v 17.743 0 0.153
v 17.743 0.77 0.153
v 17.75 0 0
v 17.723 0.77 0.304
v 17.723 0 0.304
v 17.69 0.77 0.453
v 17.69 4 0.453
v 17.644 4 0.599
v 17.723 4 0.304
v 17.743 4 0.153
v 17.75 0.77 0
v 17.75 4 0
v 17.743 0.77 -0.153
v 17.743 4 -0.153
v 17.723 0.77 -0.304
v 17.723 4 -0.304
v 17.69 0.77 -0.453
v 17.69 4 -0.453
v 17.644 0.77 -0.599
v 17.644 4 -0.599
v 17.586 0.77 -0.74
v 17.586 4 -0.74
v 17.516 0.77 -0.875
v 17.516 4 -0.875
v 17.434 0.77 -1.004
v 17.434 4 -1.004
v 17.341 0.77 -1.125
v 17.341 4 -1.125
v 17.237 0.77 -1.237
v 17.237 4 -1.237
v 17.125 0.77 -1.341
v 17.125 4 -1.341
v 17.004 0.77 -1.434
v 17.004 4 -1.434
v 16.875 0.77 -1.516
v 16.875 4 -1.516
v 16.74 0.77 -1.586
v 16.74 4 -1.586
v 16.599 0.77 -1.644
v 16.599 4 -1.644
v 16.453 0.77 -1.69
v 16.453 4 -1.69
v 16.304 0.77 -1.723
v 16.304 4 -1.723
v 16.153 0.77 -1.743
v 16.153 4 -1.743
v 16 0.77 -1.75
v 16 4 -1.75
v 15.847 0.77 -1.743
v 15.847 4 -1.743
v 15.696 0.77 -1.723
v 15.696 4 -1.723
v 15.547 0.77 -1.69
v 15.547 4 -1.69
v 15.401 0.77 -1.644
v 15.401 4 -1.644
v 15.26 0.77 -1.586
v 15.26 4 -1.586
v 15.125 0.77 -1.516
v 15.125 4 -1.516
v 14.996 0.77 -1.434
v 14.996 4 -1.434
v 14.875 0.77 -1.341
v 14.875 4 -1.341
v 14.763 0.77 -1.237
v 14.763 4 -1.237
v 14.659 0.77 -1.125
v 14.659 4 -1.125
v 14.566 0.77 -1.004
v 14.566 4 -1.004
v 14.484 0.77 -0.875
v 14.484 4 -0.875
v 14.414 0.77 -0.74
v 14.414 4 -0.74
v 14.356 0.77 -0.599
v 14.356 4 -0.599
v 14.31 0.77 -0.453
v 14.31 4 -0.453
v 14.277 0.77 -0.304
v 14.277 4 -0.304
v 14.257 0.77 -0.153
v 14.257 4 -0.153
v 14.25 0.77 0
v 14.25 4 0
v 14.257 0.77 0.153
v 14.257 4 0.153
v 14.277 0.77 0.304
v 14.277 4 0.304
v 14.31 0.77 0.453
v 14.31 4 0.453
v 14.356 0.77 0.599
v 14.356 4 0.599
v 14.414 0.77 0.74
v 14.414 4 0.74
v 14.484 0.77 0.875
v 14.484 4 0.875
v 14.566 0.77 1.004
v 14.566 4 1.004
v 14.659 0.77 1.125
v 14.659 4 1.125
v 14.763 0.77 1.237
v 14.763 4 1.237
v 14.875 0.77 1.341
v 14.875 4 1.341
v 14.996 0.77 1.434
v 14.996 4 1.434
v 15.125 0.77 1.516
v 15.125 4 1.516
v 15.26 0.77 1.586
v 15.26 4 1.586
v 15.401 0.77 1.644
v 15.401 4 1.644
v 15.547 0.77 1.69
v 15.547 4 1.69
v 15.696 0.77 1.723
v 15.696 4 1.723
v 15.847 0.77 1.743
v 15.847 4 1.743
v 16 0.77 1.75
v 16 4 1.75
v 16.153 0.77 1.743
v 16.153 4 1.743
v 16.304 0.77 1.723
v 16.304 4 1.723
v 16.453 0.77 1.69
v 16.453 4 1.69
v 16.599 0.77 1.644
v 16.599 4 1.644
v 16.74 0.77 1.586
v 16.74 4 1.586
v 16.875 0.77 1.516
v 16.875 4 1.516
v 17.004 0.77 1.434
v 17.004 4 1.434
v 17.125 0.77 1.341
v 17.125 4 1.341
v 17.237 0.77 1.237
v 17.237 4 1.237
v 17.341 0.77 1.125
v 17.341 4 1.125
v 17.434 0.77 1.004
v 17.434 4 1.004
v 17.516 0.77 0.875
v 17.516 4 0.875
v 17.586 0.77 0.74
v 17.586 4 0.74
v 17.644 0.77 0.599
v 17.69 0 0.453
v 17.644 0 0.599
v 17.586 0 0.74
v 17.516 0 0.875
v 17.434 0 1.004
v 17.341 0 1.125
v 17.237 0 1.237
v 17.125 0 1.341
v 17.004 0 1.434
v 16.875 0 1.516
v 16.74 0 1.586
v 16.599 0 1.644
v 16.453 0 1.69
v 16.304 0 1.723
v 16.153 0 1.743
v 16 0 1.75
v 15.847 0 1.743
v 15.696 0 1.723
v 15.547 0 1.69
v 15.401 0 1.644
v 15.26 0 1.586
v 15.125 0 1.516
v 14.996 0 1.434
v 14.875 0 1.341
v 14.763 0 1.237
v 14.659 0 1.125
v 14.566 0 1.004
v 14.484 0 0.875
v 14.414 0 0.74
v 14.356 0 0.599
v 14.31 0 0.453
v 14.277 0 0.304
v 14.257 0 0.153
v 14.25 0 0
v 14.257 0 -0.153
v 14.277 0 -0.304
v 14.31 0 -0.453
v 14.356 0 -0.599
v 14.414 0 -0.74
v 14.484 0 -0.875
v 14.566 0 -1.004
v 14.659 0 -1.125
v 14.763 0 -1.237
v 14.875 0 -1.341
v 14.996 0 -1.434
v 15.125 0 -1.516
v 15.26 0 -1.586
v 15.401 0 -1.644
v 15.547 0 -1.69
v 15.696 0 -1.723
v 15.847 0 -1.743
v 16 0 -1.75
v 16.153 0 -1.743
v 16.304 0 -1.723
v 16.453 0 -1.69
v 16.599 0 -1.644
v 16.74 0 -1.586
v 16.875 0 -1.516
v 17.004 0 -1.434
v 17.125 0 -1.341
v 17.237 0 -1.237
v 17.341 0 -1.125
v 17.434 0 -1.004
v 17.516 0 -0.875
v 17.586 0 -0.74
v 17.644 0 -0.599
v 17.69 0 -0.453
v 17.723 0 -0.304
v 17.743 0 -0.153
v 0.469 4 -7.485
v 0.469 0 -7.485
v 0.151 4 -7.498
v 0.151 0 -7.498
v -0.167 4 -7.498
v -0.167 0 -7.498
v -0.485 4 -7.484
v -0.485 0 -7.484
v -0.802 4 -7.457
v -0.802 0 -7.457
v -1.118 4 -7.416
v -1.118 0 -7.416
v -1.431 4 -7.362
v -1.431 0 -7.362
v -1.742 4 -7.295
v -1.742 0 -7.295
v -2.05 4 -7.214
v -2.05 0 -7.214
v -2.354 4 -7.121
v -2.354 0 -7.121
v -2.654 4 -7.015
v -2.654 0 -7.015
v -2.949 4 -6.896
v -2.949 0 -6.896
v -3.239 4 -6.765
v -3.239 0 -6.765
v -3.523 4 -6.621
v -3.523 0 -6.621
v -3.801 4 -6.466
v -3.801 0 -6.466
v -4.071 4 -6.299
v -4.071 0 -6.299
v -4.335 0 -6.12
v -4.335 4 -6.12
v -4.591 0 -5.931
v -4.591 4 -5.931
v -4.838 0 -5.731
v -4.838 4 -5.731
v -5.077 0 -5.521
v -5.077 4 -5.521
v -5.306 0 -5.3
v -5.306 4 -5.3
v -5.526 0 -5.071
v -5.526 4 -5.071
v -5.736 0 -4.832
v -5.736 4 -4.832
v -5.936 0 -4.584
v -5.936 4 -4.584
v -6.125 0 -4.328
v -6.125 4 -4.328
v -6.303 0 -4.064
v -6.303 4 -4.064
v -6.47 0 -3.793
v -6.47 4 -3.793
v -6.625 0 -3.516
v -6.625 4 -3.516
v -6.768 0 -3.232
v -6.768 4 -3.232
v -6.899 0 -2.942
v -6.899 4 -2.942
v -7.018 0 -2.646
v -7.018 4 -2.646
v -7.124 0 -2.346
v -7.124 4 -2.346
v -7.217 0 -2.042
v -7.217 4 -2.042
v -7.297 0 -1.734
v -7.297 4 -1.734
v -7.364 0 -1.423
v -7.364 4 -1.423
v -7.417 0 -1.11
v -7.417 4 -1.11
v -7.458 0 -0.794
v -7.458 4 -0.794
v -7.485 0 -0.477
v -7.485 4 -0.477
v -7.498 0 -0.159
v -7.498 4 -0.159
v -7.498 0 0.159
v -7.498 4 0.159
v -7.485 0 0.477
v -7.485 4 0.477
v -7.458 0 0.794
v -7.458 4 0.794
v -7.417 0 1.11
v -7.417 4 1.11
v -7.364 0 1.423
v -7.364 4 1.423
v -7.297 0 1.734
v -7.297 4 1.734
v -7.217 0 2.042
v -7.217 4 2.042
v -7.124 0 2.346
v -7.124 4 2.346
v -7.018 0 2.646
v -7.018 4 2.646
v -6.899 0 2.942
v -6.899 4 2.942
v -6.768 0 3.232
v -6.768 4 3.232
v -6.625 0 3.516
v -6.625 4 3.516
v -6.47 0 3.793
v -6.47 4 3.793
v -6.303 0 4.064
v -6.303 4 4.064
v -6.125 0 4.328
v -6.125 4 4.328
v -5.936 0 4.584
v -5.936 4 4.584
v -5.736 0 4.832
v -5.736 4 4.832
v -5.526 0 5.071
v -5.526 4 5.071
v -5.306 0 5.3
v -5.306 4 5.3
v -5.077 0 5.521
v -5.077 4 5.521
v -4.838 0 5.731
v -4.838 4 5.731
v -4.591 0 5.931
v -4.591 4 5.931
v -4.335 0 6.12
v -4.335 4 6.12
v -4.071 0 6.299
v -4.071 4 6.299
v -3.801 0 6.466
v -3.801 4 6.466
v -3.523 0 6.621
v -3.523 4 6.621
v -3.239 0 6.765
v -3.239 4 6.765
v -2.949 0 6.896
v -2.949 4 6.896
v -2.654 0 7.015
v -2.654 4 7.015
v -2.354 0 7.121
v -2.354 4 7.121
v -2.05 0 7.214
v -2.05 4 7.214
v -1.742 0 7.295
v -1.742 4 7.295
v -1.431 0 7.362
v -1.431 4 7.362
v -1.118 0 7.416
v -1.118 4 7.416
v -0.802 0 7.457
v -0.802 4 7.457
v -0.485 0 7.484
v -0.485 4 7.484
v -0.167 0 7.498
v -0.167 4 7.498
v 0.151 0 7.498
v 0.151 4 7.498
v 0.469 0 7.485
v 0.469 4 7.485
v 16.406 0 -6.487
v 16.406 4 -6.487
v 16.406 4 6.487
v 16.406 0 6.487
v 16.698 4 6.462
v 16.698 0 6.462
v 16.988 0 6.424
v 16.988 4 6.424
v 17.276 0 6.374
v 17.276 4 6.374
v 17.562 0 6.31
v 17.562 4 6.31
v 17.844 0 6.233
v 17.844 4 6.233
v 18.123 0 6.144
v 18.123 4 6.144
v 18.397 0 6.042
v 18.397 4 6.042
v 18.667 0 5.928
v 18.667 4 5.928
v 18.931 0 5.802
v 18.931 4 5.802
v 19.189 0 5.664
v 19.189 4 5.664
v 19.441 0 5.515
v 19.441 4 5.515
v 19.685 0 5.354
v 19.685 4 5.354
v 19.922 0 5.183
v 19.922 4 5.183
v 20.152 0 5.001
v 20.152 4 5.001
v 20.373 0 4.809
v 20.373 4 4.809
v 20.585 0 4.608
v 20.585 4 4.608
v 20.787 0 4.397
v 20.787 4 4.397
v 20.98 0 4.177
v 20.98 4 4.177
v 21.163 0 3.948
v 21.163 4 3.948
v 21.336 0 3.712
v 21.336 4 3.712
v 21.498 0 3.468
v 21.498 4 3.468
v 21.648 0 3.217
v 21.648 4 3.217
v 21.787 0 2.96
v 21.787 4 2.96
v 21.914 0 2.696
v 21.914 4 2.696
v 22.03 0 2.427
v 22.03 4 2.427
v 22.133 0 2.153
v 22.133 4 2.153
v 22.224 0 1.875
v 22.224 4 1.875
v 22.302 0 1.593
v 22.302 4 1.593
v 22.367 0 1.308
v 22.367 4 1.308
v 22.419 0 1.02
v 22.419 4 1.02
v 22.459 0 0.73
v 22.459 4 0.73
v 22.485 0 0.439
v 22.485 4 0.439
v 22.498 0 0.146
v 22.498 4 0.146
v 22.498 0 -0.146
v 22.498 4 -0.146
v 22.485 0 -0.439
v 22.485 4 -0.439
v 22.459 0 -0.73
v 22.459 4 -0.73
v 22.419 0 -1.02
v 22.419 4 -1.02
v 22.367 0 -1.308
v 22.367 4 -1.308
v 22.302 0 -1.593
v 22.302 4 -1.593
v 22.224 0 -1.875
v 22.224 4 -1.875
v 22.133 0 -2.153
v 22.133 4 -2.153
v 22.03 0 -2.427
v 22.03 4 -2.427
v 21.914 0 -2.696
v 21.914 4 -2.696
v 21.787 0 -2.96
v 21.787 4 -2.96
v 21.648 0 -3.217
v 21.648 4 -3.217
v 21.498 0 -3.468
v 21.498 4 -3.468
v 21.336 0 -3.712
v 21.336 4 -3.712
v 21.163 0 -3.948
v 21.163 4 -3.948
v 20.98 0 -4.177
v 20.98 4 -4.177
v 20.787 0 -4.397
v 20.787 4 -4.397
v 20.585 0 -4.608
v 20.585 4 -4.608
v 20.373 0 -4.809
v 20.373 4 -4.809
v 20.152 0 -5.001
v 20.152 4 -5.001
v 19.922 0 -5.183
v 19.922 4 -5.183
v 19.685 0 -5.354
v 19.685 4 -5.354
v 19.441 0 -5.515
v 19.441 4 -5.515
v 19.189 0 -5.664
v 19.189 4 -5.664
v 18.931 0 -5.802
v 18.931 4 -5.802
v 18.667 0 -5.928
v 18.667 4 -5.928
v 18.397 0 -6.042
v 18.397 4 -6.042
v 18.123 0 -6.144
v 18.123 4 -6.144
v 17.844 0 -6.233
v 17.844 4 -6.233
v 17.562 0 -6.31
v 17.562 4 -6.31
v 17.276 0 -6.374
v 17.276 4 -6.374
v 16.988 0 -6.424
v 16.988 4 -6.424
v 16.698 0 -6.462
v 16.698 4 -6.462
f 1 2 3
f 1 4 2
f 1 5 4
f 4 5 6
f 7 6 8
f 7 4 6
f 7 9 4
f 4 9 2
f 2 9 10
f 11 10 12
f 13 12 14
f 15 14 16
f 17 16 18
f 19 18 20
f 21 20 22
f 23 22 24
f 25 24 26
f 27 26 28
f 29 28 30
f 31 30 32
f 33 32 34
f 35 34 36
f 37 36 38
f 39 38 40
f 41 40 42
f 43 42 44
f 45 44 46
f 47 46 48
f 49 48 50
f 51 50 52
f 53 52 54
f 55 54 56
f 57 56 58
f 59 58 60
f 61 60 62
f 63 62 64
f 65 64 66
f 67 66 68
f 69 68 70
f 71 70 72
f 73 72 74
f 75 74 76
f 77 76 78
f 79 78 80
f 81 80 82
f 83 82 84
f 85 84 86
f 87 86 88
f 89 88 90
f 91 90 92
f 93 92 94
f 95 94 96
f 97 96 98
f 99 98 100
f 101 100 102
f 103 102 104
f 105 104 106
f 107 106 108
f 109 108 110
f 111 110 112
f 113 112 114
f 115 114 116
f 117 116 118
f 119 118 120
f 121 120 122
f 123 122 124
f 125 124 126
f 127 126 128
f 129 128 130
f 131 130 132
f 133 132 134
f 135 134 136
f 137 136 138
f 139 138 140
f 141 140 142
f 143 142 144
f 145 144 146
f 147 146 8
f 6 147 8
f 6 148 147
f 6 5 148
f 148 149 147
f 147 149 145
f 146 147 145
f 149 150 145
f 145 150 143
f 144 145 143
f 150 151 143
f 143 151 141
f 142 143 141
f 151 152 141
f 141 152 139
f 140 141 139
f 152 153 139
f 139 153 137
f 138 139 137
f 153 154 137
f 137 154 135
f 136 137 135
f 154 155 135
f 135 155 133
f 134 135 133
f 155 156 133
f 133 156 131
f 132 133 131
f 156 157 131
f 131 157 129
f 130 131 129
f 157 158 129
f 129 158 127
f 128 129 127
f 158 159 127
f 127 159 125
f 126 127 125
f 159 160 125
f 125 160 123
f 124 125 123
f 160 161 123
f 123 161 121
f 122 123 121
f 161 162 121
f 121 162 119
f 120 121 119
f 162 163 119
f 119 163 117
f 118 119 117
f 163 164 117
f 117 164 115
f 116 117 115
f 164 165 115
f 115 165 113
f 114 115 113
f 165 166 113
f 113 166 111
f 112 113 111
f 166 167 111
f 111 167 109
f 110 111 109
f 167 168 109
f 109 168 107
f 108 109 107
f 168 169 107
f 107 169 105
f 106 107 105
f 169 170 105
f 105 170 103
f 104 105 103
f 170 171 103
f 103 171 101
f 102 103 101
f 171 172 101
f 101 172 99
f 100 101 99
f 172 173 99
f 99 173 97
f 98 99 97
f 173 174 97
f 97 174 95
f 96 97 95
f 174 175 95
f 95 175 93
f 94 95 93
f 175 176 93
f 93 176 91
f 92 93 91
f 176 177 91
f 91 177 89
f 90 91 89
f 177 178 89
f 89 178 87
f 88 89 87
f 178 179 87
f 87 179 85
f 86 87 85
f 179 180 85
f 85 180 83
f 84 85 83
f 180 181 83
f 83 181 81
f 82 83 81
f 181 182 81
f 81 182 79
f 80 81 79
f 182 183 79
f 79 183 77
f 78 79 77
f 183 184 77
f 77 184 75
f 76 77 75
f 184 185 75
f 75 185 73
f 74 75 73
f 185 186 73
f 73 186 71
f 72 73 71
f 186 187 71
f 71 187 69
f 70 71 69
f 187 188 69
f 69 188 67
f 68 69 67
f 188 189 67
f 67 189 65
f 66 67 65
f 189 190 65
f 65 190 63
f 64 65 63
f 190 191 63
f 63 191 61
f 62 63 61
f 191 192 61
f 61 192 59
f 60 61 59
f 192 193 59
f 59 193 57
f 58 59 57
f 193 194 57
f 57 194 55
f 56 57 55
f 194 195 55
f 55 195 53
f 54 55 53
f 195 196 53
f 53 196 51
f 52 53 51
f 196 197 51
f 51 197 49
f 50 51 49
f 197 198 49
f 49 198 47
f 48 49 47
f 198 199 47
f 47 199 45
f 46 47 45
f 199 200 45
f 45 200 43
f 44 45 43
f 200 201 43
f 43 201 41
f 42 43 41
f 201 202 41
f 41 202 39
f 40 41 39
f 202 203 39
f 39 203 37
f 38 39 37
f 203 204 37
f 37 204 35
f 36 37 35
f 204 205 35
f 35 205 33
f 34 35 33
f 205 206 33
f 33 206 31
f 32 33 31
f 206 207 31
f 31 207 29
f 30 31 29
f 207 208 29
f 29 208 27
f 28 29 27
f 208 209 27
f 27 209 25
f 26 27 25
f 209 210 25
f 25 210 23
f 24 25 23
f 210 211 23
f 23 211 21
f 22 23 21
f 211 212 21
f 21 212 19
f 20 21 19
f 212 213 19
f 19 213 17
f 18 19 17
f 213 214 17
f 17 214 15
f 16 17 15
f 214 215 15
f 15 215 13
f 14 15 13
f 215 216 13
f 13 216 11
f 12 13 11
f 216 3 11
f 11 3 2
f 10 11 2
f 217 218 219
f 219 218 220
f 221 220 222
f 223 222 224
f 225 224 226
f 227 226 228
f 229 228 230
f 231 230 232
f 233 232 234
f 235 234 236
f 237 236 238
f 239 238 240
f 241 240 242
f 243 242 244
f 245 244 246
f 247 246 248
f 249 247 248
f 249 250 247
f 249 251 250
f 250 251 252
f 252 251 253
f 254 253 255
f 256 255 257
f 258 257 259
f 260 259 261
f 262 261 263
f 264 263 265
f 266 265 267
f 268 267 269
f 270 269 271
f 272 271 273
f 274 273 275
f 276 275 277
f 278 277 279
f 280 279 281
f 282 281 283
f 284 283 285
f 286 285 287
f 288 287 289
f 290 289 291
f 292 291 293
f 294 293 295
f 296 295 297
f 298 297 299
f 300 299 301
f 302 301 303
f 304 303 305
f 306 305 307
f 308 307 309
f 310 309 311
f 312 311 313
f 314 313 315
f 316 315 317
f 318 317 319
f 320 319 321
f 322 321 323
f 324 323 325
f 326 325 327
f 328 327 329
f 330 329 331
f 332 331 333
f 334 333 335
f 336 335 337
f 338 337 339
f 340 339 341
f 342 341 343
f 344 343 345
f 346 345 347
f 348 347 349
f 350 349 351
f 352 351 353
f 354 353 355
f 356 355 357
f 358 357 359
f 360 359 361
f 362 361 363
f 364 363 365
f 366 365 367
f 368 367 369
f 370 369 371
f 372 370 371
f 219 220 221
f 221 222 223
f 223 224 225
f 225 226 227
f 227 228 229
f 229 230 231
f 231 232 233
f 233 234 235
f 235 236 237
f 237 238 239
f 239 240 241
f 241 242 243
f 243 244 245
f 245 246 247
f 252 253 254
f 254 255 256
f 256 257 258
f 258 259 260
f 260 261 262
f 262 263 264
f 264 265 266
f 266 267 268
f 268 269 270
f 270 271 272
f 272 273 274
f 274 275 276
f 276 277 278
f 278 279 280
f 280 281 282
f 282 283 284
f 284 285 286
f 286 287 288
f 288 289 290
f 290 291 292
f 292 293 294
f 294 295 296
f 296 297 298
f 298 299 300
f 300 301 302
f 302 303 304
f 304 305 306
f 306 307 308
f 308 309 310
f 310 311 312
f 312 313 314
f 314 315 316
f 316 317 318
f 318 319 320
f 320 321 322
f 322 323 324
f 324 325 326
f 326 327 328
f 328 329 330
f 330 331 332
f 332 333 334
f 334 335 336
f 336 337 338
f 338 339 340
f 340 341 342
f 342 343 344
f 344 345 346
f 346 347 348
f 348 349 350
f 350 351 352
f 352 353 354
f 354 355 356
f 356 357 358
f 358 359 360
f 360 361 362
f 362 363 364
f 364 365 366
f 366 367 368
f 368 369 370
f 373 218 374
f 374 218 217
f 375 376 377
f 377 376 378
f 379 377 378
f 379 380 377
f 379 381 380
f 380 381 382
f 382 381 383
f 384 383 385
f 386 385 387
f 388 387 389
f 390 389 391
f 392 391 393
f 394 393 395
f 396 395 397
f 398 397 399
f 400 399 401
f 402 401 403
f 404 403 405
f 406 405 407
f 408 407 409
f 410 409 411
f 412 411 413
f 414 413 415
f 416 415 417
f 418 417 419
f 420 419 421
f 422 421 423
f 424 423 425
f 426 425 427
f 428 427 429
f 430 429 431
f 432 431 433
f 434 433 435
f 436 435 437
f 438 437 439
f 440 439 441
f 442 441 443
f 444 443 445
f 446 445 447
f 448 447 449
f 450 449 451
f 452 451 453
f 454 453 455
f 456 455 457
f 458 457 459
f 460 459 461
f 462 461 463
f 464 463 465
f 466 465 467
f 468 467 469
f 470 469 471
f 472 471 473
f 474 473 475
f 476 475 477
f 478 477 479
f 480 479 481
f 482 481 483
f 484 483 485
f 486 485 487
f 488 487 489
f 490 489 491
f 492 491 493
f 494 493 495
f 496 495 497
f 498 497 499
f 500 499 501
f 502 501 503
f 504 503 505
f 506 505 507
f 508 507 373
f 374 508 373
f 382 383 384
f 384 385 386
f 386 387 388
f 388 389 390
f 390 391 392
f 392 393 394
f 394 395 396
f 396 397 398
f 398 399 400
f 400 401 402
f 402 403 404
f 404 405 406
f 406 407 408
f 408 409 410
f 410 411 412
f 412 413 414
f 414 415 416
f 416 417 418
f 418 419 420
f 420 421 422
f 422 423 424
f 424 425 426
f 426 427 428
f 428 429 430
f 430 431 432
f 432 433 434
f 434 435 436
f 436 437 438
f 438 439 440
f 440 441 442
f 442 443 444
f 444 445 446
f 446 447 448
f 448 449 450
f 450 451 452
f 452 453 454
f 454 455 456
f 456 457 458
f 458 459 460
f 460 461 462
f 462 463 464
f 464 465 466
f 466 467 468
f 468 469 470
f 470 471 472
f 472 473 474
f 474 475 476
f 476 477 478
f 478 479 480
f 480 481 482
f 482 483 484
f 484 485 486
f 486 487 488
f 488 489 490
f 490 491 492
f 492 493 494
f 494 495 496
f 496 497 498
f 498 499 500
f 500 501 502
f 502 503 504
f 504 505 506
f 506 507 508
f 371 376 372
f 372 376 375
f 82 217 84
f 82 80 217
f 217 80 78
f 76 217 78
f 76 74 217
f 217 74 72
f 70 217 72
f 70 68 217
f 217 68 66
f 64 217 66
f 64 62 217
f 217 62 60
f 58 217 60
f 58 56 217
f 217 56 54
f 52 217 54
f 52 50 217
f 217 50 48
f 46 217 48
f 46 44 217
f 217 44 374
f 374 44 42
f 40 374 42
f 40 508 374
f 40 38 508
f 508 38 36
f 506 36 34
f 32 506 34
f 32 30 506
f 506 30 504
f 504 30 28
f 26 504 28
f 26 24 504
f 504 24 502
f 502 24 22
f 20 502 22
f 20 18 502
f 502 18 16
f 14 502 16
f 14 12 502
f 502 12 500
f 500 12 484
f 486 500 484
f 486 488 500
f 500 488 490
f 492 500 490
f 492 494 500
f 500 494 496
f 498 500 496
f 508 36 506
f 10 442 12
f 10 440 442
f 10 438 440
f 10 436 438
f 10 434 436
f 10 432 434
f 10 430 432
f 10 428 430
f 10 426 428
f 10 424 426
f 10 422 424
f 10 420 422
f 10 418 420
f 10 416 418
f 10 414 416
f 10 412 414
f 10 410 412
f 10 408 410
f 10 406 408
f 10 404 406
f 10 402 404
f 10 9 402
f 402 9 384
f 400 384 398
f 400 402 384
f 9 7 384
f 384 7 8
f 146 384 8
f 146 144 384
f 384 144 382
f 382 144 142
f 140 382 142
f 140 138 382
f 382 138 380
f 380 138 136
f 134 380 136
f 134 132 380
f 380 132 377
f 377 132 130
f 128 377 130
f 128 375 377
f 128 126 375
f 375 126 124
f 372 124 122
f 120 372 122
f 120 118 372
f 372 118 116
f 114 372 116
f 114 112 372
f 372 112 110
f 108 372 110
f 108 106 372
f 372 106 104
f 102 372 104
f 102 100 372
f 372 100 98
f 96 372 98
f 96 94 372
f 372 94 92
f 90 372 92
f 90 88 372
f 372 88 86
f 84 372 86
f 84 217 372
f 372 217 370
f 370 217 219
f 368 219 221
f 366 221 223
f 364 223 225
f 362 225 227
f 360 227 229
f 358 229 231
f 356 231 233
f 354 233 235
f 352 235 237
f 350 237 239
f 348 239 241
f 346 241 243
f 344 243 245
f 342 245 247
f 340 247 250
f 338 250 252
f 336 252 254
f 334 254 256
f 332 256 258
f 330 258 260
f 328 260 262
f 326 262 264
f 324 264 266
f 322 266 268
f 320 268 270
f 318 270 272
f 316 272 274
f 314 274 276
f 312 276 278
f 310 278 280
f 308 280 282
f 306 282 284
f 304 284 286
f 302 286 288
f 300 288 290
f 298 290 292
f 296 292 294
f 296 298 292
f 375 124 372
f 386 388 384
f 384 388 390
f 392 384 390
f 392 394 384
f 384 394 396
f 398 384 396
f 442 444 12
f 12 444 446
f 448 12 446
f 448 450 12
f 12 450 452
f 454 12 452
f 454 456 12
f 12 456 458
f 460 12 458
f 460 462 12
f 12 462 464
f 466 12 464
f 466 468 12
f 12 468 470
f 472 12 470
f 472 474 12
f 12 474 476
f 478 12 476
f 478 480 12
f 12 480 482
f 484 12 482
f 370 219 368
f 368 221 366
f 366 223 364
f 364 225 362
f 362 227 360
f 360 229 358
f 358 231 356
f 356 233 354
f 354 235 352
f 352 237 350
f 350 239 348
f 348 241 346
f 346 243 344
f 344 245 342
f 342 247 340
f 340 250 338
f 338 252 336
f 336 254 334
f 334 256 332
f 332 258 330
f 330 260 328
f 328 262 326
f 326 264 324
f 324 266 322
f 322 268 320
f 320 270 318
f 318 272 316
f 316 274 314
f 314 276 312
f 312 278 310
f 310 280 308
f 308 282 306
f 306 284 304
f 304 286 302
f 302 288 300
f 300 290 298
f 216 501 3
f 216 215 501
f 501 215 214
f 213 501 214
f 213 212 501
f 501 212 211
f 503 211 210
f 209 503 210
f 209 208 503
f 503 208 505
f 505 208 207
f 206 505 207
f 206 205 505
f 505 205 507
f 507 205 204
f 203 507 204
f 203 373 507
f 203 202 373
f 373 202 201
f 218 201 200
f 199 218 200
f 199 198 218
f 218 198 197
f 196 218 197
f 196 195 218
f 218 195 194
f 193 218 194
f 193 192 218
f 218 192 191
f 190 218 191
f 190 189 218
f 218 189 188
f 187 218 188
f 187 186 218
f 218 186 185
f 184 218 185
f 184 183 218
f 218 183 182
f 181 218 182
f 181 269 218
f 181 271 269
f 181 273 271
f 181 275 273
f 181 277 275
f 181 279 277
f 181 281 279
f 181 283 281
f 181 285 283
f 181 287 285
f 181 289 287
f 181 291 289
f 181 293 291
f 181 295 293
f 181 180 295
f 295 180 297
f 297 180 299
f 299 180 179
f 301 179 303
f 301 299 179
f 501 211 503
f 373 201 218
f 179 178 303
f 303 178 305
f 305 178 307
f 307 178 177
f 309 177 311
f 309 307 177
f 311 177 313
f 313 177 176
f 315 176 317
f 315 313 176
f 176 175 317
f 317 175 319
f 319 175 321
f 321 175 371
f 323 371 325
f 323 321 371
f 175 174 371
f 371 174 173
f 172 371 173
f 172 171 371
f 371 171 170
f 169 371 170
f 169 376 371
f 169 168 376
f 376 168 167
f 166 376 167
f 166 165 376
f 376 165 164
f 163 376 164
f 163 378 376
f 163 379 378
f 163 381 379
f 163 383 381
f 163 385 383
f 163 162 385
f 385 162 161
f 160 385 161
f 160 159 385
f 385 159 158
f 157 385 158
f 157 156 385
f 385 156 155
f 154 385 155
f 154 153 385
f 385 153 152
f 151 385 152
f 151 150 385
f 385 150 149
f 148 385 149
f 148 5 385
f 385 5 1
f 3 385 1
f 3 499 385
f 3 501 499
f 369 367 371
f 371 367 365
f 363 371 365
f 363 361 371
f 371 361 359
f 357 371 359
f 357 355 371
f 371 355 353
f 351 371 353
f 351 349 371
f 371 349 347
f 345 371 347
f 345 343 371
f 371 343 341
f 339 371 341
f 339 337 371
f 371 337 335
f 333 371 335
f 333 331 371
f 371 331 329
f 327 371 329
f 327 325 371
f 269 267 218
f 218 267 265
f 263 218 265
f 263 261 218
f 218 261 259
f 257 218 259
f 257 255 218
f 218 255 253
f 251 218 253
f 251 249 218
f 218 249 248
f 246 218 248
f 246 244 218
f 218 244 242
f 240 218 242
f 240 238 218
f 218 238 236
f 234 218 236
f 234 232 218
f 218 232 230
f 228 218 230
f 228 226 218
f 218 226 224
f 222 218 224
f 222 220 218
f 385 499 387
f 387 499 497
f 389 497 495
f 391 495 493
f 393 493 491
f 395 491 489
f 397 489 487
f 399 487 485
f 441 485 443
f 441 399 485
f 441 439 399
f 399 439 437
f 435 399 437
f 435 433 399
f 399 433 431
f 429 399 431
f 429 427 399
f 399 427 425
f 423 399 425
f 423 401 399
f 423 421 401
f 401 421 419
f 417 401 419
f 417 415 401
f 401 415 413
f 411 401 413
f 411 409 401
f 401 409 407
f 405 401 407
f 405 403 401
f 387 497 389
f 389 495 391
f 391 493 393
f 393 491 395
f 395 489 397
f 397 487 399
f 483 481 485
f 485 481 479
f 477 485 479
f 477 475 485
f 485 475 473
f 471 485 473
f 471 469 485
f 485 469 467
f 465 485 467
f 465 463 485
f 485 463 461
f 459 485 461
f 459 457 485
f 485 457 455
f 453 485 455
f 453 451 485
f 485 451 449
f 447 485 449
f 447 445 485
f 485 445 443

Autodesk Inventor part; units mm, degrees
ref_plane "YZ Plane" through (0, 0, 0) normal (1, 0, 0) x (0, 1, 0)
ref_plane "XZ Plane" through (0, 0, 0) normal (0, 1, 0) x (-1, 0, 0)
ref_plane "XY Plane" through (0, 0, 0) normal (0, 0, 1) x (1, 0, 0)
sketch "Sketch1" plane through (0, 0, 0) normal (0, 1, 0) x (-1, 0, 0)
  line L0 (0, 0) -> (-16, 0) construction
  line L1 (-0.4688, 7.4853) -> (-16.4063, 6.4873)
  line L2 (-16.4062, -6.4873) -> (-0.4687, -7.4853)
  arc A0 (-0.4687, -7.4853) -> (-0.4688, 7.4853) centre (0, 0) ccw
  arc A1 (-16.4063, 6.4873) -> (-16.4062, -6.4873) centre (-16, 0) ccw
  point P0 (-8, 0)
  point P1 (7.5, 0)
  point P2 (-22.5, 0)
  dimension "d0" = 7.5
  dimension "d1" = 6.5
  dimension "d2" = 30
extrude "Extrusion1" add sketch "Sketch1" along normal blind 4
hole "Hole1" at (16, 4, 0) direction (0, -1, 0) diameter 3.5 end through all
properties part number "A8-0014"
